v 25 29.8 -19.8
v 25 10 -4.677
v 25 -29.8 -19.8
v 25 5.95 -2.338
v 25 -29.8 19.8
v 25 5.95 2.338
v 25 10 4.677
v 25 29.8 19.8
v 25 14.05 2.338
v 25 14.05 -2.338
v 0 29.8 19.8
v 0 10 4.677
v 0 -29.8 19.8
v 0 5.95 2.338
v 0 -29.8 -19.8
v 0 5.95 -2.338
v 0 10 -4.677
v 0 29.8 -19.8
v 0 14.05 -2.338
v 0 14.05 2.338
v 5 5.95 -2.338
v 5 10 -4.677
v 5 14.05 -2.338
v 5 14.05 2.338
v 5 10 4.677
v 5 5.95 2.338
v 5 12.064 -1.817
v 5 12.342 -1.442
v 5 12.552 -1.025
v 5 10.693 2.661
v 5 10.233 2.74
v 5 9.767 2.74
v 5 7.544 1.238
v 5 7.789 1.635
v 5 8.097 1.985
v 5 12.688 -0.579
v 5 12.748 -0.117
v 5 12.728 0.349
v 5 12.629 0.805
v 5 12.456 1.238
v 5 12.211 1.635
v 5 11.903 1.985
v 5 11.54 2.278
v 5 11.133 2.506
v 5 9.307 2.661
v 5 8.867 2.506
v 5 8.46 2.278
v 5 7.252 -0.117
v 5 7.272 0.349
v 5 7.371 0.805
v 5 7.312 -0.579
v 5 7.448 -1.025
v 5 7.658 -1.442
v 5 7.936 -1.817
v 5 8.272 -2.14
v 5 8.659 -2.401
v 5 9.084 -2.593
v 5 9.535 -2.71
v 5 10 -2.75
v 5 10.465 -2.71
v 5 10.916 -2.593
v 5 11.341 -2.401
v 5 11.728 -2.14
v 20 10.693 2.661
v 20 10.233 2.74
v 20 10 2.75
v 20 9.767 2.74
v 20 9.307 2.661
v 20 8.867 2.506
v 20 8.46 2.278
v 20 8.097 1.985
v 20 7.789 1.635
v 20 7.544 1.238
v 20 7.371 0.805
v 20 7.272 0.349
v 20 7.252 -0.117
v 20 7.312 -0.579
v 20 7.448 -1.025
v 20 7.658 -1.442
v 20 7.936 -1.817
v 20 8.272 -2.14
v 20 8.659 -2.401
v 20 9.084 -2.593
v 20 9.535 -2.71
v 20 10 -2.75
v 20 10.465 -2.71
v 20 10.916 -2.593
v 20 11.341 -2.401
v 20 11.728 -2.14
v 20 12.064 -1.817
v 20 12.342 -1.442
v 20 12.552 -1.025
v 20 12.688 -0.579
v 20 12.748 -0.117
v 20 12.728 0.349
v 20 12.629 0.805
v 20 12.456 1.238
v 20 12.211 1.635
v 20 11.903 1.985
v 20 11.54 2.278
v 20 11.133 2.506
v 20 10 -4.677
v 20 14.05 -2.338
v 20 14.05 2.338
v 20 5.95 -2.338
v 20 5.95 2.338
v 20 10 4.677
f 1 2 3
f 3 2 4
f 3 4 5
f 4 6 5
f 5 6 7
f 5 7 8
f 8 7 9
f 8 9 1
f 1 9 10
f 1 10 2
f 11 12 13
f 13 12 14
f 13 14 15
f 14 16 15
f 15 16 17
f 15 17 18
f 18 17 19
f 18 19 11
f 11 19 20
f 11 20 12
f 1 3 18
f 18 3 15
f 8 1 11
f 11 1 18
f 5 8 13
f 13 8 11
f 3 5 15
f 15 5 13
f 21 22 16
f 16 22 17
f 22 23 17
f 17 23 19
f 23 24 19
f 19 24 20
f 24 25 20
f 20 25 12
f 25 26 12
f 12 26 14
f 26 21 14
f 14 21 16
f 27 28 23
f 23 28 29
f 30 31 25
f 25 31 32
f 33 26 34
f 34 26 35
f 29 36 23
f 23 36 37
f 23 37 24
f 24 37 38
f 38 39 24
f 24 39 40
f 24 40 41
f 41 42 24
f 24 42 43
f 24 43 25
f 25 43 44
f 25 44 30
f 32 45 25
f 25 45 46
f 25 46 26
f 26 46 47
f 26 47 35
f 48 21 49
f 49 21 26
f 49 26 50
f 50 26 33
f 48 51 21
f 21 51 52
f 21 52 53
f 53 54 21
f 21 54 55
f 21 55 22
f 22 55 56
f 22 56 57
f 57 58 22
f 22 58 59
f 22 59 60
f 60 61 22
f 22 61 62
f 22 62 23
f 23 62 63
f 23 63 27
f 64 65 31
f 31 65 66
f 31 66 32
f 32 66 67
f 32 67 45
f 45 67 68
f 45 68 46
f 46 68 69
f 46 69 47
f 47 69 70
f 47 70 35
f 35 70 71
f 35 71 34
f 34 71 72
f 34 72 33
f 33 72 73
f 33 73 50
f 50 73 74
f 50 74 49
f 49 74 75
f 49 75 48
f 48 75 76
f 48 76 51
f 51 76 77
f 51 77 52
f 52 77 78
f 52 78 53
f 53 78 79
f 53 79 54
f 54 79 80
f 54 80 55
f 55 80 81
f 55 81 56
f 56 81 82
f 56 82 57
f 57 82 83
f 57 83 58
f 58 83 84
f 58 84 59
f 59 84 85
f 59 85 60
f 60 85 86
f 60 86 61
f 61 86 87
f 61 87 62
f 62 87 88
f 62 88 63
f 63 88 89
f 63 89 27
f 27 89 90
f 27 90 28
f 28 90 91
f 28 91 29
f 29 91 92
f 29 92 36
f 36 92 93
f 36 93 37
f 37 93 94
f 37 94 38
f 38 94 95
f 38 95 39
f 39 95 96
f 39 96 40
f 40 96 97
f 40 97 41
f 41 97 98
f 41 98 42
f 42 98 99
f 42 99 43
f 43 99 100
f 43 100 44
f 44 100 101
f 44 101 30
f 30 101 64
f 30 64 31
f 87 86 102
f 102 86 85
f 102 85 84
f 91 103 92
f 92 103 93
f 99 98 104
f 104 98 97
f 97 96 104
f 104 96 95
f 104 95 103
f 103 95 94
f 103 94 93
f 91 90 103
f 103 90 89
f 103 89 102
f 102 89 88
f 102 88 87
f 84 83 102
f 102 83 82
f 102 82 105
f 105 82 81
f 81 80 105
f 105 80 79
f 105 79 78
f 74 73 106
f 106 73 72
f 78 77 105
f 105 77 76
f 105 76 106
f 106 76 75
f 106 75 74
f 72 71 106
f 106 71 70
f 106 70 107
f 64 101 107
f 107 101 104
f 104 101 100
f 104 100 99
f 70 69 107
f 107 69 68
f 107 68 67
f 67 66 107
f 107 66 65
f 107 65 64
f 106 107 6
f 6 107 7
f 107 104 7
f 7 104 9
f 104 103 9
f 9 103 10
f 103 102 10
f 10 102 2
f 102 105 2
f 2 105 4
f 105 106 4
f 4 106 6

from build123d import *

# Parameters (mm, degrees)
SKETCH1_W               = 39.6
SKETCH1_H               = 59.6
BOSS_EXTRUDE1_DEPTH     = 25
CUT_EXTRUDE1_DEPTH      = 5
CUT_EXTRUDE2_DEPTH      = 44.647222134
CUT_EXTRUDE2_DEPTH_BACK = 44.647222134
SKETCH3_R               = 2.75
CUT_EXTRUDE4_START      = 25
CUT_EXTRUDE4_DEPTH      = 5


with BuildPart() as part:
    # Sketch1 → Boss-Extrude1 (new body)
    with BuildSketch(Plane(origin=(0, 0, 0), x_dir=(0, 0, -1), z_dir=(1, 0, 0))):
        Rectangle(SKETCH1_W, SKETCH1_H)
    extrude(amount=BOSS_EXTRUDE1_DEPTH)

    # Sketch2 → Cut-Extrude1 (cut)
    with BuildSketch(Plane(origin=(0, 0, 0), x_dir=(0, 0, -1), z_dir=(1, 0, 0))):
        Polygon((4.67653718, 10), (2.33826859, 14.05), (-2.33826859, 14.05), (-4.67653718, 10), (-2.33826859, 5.95), (2.33826859, 5.95), align=None)
    extrude(amount=CUT_EXTRUDE1_DEPTH, mode=Mode.SUBTRACT)

    # Sketch3 → Cut-Extrude2 (cut, two sides: drawn at the far end of the back side and taken through both)
    with BuildSketch(Plane(origin=(0, 0, 0), x_dir=(0, 0, -1), z_dir=(1, 0, 0)).offset(-CUT_EXTRUDE2_DEPTH_BACK)):
        with Locations((0, 10)):
            Circle(SKETCH3_R)
    extrude(amount=CUT_EXTRUDE2_DEPTH + CUT_EXTRUDE2_DEPTH_BACK, mode=Mode.SUBTRACT)

    # Sketch2<2> → Cut-Extrude4 (cut)
    with BuildSketch(Plane(origin=(0, 0, 0), x_dir=(0, 0, -1), z_dir=(1, 0, 0)).offset(CUT_EXTRUDE4_START)):
        Polygon((4.67653718, 10), (2.33826859, 14.05), (-2.33826859, 14.05), (-4.67653718, 10), (-2.33826859, 5.95), (2.33826859, 5.95), align=None)
    extrude(amount=-CUT_EXTRUDE4_DEPTH, mode=Mode.SUBTRACT)


solid = part.part
